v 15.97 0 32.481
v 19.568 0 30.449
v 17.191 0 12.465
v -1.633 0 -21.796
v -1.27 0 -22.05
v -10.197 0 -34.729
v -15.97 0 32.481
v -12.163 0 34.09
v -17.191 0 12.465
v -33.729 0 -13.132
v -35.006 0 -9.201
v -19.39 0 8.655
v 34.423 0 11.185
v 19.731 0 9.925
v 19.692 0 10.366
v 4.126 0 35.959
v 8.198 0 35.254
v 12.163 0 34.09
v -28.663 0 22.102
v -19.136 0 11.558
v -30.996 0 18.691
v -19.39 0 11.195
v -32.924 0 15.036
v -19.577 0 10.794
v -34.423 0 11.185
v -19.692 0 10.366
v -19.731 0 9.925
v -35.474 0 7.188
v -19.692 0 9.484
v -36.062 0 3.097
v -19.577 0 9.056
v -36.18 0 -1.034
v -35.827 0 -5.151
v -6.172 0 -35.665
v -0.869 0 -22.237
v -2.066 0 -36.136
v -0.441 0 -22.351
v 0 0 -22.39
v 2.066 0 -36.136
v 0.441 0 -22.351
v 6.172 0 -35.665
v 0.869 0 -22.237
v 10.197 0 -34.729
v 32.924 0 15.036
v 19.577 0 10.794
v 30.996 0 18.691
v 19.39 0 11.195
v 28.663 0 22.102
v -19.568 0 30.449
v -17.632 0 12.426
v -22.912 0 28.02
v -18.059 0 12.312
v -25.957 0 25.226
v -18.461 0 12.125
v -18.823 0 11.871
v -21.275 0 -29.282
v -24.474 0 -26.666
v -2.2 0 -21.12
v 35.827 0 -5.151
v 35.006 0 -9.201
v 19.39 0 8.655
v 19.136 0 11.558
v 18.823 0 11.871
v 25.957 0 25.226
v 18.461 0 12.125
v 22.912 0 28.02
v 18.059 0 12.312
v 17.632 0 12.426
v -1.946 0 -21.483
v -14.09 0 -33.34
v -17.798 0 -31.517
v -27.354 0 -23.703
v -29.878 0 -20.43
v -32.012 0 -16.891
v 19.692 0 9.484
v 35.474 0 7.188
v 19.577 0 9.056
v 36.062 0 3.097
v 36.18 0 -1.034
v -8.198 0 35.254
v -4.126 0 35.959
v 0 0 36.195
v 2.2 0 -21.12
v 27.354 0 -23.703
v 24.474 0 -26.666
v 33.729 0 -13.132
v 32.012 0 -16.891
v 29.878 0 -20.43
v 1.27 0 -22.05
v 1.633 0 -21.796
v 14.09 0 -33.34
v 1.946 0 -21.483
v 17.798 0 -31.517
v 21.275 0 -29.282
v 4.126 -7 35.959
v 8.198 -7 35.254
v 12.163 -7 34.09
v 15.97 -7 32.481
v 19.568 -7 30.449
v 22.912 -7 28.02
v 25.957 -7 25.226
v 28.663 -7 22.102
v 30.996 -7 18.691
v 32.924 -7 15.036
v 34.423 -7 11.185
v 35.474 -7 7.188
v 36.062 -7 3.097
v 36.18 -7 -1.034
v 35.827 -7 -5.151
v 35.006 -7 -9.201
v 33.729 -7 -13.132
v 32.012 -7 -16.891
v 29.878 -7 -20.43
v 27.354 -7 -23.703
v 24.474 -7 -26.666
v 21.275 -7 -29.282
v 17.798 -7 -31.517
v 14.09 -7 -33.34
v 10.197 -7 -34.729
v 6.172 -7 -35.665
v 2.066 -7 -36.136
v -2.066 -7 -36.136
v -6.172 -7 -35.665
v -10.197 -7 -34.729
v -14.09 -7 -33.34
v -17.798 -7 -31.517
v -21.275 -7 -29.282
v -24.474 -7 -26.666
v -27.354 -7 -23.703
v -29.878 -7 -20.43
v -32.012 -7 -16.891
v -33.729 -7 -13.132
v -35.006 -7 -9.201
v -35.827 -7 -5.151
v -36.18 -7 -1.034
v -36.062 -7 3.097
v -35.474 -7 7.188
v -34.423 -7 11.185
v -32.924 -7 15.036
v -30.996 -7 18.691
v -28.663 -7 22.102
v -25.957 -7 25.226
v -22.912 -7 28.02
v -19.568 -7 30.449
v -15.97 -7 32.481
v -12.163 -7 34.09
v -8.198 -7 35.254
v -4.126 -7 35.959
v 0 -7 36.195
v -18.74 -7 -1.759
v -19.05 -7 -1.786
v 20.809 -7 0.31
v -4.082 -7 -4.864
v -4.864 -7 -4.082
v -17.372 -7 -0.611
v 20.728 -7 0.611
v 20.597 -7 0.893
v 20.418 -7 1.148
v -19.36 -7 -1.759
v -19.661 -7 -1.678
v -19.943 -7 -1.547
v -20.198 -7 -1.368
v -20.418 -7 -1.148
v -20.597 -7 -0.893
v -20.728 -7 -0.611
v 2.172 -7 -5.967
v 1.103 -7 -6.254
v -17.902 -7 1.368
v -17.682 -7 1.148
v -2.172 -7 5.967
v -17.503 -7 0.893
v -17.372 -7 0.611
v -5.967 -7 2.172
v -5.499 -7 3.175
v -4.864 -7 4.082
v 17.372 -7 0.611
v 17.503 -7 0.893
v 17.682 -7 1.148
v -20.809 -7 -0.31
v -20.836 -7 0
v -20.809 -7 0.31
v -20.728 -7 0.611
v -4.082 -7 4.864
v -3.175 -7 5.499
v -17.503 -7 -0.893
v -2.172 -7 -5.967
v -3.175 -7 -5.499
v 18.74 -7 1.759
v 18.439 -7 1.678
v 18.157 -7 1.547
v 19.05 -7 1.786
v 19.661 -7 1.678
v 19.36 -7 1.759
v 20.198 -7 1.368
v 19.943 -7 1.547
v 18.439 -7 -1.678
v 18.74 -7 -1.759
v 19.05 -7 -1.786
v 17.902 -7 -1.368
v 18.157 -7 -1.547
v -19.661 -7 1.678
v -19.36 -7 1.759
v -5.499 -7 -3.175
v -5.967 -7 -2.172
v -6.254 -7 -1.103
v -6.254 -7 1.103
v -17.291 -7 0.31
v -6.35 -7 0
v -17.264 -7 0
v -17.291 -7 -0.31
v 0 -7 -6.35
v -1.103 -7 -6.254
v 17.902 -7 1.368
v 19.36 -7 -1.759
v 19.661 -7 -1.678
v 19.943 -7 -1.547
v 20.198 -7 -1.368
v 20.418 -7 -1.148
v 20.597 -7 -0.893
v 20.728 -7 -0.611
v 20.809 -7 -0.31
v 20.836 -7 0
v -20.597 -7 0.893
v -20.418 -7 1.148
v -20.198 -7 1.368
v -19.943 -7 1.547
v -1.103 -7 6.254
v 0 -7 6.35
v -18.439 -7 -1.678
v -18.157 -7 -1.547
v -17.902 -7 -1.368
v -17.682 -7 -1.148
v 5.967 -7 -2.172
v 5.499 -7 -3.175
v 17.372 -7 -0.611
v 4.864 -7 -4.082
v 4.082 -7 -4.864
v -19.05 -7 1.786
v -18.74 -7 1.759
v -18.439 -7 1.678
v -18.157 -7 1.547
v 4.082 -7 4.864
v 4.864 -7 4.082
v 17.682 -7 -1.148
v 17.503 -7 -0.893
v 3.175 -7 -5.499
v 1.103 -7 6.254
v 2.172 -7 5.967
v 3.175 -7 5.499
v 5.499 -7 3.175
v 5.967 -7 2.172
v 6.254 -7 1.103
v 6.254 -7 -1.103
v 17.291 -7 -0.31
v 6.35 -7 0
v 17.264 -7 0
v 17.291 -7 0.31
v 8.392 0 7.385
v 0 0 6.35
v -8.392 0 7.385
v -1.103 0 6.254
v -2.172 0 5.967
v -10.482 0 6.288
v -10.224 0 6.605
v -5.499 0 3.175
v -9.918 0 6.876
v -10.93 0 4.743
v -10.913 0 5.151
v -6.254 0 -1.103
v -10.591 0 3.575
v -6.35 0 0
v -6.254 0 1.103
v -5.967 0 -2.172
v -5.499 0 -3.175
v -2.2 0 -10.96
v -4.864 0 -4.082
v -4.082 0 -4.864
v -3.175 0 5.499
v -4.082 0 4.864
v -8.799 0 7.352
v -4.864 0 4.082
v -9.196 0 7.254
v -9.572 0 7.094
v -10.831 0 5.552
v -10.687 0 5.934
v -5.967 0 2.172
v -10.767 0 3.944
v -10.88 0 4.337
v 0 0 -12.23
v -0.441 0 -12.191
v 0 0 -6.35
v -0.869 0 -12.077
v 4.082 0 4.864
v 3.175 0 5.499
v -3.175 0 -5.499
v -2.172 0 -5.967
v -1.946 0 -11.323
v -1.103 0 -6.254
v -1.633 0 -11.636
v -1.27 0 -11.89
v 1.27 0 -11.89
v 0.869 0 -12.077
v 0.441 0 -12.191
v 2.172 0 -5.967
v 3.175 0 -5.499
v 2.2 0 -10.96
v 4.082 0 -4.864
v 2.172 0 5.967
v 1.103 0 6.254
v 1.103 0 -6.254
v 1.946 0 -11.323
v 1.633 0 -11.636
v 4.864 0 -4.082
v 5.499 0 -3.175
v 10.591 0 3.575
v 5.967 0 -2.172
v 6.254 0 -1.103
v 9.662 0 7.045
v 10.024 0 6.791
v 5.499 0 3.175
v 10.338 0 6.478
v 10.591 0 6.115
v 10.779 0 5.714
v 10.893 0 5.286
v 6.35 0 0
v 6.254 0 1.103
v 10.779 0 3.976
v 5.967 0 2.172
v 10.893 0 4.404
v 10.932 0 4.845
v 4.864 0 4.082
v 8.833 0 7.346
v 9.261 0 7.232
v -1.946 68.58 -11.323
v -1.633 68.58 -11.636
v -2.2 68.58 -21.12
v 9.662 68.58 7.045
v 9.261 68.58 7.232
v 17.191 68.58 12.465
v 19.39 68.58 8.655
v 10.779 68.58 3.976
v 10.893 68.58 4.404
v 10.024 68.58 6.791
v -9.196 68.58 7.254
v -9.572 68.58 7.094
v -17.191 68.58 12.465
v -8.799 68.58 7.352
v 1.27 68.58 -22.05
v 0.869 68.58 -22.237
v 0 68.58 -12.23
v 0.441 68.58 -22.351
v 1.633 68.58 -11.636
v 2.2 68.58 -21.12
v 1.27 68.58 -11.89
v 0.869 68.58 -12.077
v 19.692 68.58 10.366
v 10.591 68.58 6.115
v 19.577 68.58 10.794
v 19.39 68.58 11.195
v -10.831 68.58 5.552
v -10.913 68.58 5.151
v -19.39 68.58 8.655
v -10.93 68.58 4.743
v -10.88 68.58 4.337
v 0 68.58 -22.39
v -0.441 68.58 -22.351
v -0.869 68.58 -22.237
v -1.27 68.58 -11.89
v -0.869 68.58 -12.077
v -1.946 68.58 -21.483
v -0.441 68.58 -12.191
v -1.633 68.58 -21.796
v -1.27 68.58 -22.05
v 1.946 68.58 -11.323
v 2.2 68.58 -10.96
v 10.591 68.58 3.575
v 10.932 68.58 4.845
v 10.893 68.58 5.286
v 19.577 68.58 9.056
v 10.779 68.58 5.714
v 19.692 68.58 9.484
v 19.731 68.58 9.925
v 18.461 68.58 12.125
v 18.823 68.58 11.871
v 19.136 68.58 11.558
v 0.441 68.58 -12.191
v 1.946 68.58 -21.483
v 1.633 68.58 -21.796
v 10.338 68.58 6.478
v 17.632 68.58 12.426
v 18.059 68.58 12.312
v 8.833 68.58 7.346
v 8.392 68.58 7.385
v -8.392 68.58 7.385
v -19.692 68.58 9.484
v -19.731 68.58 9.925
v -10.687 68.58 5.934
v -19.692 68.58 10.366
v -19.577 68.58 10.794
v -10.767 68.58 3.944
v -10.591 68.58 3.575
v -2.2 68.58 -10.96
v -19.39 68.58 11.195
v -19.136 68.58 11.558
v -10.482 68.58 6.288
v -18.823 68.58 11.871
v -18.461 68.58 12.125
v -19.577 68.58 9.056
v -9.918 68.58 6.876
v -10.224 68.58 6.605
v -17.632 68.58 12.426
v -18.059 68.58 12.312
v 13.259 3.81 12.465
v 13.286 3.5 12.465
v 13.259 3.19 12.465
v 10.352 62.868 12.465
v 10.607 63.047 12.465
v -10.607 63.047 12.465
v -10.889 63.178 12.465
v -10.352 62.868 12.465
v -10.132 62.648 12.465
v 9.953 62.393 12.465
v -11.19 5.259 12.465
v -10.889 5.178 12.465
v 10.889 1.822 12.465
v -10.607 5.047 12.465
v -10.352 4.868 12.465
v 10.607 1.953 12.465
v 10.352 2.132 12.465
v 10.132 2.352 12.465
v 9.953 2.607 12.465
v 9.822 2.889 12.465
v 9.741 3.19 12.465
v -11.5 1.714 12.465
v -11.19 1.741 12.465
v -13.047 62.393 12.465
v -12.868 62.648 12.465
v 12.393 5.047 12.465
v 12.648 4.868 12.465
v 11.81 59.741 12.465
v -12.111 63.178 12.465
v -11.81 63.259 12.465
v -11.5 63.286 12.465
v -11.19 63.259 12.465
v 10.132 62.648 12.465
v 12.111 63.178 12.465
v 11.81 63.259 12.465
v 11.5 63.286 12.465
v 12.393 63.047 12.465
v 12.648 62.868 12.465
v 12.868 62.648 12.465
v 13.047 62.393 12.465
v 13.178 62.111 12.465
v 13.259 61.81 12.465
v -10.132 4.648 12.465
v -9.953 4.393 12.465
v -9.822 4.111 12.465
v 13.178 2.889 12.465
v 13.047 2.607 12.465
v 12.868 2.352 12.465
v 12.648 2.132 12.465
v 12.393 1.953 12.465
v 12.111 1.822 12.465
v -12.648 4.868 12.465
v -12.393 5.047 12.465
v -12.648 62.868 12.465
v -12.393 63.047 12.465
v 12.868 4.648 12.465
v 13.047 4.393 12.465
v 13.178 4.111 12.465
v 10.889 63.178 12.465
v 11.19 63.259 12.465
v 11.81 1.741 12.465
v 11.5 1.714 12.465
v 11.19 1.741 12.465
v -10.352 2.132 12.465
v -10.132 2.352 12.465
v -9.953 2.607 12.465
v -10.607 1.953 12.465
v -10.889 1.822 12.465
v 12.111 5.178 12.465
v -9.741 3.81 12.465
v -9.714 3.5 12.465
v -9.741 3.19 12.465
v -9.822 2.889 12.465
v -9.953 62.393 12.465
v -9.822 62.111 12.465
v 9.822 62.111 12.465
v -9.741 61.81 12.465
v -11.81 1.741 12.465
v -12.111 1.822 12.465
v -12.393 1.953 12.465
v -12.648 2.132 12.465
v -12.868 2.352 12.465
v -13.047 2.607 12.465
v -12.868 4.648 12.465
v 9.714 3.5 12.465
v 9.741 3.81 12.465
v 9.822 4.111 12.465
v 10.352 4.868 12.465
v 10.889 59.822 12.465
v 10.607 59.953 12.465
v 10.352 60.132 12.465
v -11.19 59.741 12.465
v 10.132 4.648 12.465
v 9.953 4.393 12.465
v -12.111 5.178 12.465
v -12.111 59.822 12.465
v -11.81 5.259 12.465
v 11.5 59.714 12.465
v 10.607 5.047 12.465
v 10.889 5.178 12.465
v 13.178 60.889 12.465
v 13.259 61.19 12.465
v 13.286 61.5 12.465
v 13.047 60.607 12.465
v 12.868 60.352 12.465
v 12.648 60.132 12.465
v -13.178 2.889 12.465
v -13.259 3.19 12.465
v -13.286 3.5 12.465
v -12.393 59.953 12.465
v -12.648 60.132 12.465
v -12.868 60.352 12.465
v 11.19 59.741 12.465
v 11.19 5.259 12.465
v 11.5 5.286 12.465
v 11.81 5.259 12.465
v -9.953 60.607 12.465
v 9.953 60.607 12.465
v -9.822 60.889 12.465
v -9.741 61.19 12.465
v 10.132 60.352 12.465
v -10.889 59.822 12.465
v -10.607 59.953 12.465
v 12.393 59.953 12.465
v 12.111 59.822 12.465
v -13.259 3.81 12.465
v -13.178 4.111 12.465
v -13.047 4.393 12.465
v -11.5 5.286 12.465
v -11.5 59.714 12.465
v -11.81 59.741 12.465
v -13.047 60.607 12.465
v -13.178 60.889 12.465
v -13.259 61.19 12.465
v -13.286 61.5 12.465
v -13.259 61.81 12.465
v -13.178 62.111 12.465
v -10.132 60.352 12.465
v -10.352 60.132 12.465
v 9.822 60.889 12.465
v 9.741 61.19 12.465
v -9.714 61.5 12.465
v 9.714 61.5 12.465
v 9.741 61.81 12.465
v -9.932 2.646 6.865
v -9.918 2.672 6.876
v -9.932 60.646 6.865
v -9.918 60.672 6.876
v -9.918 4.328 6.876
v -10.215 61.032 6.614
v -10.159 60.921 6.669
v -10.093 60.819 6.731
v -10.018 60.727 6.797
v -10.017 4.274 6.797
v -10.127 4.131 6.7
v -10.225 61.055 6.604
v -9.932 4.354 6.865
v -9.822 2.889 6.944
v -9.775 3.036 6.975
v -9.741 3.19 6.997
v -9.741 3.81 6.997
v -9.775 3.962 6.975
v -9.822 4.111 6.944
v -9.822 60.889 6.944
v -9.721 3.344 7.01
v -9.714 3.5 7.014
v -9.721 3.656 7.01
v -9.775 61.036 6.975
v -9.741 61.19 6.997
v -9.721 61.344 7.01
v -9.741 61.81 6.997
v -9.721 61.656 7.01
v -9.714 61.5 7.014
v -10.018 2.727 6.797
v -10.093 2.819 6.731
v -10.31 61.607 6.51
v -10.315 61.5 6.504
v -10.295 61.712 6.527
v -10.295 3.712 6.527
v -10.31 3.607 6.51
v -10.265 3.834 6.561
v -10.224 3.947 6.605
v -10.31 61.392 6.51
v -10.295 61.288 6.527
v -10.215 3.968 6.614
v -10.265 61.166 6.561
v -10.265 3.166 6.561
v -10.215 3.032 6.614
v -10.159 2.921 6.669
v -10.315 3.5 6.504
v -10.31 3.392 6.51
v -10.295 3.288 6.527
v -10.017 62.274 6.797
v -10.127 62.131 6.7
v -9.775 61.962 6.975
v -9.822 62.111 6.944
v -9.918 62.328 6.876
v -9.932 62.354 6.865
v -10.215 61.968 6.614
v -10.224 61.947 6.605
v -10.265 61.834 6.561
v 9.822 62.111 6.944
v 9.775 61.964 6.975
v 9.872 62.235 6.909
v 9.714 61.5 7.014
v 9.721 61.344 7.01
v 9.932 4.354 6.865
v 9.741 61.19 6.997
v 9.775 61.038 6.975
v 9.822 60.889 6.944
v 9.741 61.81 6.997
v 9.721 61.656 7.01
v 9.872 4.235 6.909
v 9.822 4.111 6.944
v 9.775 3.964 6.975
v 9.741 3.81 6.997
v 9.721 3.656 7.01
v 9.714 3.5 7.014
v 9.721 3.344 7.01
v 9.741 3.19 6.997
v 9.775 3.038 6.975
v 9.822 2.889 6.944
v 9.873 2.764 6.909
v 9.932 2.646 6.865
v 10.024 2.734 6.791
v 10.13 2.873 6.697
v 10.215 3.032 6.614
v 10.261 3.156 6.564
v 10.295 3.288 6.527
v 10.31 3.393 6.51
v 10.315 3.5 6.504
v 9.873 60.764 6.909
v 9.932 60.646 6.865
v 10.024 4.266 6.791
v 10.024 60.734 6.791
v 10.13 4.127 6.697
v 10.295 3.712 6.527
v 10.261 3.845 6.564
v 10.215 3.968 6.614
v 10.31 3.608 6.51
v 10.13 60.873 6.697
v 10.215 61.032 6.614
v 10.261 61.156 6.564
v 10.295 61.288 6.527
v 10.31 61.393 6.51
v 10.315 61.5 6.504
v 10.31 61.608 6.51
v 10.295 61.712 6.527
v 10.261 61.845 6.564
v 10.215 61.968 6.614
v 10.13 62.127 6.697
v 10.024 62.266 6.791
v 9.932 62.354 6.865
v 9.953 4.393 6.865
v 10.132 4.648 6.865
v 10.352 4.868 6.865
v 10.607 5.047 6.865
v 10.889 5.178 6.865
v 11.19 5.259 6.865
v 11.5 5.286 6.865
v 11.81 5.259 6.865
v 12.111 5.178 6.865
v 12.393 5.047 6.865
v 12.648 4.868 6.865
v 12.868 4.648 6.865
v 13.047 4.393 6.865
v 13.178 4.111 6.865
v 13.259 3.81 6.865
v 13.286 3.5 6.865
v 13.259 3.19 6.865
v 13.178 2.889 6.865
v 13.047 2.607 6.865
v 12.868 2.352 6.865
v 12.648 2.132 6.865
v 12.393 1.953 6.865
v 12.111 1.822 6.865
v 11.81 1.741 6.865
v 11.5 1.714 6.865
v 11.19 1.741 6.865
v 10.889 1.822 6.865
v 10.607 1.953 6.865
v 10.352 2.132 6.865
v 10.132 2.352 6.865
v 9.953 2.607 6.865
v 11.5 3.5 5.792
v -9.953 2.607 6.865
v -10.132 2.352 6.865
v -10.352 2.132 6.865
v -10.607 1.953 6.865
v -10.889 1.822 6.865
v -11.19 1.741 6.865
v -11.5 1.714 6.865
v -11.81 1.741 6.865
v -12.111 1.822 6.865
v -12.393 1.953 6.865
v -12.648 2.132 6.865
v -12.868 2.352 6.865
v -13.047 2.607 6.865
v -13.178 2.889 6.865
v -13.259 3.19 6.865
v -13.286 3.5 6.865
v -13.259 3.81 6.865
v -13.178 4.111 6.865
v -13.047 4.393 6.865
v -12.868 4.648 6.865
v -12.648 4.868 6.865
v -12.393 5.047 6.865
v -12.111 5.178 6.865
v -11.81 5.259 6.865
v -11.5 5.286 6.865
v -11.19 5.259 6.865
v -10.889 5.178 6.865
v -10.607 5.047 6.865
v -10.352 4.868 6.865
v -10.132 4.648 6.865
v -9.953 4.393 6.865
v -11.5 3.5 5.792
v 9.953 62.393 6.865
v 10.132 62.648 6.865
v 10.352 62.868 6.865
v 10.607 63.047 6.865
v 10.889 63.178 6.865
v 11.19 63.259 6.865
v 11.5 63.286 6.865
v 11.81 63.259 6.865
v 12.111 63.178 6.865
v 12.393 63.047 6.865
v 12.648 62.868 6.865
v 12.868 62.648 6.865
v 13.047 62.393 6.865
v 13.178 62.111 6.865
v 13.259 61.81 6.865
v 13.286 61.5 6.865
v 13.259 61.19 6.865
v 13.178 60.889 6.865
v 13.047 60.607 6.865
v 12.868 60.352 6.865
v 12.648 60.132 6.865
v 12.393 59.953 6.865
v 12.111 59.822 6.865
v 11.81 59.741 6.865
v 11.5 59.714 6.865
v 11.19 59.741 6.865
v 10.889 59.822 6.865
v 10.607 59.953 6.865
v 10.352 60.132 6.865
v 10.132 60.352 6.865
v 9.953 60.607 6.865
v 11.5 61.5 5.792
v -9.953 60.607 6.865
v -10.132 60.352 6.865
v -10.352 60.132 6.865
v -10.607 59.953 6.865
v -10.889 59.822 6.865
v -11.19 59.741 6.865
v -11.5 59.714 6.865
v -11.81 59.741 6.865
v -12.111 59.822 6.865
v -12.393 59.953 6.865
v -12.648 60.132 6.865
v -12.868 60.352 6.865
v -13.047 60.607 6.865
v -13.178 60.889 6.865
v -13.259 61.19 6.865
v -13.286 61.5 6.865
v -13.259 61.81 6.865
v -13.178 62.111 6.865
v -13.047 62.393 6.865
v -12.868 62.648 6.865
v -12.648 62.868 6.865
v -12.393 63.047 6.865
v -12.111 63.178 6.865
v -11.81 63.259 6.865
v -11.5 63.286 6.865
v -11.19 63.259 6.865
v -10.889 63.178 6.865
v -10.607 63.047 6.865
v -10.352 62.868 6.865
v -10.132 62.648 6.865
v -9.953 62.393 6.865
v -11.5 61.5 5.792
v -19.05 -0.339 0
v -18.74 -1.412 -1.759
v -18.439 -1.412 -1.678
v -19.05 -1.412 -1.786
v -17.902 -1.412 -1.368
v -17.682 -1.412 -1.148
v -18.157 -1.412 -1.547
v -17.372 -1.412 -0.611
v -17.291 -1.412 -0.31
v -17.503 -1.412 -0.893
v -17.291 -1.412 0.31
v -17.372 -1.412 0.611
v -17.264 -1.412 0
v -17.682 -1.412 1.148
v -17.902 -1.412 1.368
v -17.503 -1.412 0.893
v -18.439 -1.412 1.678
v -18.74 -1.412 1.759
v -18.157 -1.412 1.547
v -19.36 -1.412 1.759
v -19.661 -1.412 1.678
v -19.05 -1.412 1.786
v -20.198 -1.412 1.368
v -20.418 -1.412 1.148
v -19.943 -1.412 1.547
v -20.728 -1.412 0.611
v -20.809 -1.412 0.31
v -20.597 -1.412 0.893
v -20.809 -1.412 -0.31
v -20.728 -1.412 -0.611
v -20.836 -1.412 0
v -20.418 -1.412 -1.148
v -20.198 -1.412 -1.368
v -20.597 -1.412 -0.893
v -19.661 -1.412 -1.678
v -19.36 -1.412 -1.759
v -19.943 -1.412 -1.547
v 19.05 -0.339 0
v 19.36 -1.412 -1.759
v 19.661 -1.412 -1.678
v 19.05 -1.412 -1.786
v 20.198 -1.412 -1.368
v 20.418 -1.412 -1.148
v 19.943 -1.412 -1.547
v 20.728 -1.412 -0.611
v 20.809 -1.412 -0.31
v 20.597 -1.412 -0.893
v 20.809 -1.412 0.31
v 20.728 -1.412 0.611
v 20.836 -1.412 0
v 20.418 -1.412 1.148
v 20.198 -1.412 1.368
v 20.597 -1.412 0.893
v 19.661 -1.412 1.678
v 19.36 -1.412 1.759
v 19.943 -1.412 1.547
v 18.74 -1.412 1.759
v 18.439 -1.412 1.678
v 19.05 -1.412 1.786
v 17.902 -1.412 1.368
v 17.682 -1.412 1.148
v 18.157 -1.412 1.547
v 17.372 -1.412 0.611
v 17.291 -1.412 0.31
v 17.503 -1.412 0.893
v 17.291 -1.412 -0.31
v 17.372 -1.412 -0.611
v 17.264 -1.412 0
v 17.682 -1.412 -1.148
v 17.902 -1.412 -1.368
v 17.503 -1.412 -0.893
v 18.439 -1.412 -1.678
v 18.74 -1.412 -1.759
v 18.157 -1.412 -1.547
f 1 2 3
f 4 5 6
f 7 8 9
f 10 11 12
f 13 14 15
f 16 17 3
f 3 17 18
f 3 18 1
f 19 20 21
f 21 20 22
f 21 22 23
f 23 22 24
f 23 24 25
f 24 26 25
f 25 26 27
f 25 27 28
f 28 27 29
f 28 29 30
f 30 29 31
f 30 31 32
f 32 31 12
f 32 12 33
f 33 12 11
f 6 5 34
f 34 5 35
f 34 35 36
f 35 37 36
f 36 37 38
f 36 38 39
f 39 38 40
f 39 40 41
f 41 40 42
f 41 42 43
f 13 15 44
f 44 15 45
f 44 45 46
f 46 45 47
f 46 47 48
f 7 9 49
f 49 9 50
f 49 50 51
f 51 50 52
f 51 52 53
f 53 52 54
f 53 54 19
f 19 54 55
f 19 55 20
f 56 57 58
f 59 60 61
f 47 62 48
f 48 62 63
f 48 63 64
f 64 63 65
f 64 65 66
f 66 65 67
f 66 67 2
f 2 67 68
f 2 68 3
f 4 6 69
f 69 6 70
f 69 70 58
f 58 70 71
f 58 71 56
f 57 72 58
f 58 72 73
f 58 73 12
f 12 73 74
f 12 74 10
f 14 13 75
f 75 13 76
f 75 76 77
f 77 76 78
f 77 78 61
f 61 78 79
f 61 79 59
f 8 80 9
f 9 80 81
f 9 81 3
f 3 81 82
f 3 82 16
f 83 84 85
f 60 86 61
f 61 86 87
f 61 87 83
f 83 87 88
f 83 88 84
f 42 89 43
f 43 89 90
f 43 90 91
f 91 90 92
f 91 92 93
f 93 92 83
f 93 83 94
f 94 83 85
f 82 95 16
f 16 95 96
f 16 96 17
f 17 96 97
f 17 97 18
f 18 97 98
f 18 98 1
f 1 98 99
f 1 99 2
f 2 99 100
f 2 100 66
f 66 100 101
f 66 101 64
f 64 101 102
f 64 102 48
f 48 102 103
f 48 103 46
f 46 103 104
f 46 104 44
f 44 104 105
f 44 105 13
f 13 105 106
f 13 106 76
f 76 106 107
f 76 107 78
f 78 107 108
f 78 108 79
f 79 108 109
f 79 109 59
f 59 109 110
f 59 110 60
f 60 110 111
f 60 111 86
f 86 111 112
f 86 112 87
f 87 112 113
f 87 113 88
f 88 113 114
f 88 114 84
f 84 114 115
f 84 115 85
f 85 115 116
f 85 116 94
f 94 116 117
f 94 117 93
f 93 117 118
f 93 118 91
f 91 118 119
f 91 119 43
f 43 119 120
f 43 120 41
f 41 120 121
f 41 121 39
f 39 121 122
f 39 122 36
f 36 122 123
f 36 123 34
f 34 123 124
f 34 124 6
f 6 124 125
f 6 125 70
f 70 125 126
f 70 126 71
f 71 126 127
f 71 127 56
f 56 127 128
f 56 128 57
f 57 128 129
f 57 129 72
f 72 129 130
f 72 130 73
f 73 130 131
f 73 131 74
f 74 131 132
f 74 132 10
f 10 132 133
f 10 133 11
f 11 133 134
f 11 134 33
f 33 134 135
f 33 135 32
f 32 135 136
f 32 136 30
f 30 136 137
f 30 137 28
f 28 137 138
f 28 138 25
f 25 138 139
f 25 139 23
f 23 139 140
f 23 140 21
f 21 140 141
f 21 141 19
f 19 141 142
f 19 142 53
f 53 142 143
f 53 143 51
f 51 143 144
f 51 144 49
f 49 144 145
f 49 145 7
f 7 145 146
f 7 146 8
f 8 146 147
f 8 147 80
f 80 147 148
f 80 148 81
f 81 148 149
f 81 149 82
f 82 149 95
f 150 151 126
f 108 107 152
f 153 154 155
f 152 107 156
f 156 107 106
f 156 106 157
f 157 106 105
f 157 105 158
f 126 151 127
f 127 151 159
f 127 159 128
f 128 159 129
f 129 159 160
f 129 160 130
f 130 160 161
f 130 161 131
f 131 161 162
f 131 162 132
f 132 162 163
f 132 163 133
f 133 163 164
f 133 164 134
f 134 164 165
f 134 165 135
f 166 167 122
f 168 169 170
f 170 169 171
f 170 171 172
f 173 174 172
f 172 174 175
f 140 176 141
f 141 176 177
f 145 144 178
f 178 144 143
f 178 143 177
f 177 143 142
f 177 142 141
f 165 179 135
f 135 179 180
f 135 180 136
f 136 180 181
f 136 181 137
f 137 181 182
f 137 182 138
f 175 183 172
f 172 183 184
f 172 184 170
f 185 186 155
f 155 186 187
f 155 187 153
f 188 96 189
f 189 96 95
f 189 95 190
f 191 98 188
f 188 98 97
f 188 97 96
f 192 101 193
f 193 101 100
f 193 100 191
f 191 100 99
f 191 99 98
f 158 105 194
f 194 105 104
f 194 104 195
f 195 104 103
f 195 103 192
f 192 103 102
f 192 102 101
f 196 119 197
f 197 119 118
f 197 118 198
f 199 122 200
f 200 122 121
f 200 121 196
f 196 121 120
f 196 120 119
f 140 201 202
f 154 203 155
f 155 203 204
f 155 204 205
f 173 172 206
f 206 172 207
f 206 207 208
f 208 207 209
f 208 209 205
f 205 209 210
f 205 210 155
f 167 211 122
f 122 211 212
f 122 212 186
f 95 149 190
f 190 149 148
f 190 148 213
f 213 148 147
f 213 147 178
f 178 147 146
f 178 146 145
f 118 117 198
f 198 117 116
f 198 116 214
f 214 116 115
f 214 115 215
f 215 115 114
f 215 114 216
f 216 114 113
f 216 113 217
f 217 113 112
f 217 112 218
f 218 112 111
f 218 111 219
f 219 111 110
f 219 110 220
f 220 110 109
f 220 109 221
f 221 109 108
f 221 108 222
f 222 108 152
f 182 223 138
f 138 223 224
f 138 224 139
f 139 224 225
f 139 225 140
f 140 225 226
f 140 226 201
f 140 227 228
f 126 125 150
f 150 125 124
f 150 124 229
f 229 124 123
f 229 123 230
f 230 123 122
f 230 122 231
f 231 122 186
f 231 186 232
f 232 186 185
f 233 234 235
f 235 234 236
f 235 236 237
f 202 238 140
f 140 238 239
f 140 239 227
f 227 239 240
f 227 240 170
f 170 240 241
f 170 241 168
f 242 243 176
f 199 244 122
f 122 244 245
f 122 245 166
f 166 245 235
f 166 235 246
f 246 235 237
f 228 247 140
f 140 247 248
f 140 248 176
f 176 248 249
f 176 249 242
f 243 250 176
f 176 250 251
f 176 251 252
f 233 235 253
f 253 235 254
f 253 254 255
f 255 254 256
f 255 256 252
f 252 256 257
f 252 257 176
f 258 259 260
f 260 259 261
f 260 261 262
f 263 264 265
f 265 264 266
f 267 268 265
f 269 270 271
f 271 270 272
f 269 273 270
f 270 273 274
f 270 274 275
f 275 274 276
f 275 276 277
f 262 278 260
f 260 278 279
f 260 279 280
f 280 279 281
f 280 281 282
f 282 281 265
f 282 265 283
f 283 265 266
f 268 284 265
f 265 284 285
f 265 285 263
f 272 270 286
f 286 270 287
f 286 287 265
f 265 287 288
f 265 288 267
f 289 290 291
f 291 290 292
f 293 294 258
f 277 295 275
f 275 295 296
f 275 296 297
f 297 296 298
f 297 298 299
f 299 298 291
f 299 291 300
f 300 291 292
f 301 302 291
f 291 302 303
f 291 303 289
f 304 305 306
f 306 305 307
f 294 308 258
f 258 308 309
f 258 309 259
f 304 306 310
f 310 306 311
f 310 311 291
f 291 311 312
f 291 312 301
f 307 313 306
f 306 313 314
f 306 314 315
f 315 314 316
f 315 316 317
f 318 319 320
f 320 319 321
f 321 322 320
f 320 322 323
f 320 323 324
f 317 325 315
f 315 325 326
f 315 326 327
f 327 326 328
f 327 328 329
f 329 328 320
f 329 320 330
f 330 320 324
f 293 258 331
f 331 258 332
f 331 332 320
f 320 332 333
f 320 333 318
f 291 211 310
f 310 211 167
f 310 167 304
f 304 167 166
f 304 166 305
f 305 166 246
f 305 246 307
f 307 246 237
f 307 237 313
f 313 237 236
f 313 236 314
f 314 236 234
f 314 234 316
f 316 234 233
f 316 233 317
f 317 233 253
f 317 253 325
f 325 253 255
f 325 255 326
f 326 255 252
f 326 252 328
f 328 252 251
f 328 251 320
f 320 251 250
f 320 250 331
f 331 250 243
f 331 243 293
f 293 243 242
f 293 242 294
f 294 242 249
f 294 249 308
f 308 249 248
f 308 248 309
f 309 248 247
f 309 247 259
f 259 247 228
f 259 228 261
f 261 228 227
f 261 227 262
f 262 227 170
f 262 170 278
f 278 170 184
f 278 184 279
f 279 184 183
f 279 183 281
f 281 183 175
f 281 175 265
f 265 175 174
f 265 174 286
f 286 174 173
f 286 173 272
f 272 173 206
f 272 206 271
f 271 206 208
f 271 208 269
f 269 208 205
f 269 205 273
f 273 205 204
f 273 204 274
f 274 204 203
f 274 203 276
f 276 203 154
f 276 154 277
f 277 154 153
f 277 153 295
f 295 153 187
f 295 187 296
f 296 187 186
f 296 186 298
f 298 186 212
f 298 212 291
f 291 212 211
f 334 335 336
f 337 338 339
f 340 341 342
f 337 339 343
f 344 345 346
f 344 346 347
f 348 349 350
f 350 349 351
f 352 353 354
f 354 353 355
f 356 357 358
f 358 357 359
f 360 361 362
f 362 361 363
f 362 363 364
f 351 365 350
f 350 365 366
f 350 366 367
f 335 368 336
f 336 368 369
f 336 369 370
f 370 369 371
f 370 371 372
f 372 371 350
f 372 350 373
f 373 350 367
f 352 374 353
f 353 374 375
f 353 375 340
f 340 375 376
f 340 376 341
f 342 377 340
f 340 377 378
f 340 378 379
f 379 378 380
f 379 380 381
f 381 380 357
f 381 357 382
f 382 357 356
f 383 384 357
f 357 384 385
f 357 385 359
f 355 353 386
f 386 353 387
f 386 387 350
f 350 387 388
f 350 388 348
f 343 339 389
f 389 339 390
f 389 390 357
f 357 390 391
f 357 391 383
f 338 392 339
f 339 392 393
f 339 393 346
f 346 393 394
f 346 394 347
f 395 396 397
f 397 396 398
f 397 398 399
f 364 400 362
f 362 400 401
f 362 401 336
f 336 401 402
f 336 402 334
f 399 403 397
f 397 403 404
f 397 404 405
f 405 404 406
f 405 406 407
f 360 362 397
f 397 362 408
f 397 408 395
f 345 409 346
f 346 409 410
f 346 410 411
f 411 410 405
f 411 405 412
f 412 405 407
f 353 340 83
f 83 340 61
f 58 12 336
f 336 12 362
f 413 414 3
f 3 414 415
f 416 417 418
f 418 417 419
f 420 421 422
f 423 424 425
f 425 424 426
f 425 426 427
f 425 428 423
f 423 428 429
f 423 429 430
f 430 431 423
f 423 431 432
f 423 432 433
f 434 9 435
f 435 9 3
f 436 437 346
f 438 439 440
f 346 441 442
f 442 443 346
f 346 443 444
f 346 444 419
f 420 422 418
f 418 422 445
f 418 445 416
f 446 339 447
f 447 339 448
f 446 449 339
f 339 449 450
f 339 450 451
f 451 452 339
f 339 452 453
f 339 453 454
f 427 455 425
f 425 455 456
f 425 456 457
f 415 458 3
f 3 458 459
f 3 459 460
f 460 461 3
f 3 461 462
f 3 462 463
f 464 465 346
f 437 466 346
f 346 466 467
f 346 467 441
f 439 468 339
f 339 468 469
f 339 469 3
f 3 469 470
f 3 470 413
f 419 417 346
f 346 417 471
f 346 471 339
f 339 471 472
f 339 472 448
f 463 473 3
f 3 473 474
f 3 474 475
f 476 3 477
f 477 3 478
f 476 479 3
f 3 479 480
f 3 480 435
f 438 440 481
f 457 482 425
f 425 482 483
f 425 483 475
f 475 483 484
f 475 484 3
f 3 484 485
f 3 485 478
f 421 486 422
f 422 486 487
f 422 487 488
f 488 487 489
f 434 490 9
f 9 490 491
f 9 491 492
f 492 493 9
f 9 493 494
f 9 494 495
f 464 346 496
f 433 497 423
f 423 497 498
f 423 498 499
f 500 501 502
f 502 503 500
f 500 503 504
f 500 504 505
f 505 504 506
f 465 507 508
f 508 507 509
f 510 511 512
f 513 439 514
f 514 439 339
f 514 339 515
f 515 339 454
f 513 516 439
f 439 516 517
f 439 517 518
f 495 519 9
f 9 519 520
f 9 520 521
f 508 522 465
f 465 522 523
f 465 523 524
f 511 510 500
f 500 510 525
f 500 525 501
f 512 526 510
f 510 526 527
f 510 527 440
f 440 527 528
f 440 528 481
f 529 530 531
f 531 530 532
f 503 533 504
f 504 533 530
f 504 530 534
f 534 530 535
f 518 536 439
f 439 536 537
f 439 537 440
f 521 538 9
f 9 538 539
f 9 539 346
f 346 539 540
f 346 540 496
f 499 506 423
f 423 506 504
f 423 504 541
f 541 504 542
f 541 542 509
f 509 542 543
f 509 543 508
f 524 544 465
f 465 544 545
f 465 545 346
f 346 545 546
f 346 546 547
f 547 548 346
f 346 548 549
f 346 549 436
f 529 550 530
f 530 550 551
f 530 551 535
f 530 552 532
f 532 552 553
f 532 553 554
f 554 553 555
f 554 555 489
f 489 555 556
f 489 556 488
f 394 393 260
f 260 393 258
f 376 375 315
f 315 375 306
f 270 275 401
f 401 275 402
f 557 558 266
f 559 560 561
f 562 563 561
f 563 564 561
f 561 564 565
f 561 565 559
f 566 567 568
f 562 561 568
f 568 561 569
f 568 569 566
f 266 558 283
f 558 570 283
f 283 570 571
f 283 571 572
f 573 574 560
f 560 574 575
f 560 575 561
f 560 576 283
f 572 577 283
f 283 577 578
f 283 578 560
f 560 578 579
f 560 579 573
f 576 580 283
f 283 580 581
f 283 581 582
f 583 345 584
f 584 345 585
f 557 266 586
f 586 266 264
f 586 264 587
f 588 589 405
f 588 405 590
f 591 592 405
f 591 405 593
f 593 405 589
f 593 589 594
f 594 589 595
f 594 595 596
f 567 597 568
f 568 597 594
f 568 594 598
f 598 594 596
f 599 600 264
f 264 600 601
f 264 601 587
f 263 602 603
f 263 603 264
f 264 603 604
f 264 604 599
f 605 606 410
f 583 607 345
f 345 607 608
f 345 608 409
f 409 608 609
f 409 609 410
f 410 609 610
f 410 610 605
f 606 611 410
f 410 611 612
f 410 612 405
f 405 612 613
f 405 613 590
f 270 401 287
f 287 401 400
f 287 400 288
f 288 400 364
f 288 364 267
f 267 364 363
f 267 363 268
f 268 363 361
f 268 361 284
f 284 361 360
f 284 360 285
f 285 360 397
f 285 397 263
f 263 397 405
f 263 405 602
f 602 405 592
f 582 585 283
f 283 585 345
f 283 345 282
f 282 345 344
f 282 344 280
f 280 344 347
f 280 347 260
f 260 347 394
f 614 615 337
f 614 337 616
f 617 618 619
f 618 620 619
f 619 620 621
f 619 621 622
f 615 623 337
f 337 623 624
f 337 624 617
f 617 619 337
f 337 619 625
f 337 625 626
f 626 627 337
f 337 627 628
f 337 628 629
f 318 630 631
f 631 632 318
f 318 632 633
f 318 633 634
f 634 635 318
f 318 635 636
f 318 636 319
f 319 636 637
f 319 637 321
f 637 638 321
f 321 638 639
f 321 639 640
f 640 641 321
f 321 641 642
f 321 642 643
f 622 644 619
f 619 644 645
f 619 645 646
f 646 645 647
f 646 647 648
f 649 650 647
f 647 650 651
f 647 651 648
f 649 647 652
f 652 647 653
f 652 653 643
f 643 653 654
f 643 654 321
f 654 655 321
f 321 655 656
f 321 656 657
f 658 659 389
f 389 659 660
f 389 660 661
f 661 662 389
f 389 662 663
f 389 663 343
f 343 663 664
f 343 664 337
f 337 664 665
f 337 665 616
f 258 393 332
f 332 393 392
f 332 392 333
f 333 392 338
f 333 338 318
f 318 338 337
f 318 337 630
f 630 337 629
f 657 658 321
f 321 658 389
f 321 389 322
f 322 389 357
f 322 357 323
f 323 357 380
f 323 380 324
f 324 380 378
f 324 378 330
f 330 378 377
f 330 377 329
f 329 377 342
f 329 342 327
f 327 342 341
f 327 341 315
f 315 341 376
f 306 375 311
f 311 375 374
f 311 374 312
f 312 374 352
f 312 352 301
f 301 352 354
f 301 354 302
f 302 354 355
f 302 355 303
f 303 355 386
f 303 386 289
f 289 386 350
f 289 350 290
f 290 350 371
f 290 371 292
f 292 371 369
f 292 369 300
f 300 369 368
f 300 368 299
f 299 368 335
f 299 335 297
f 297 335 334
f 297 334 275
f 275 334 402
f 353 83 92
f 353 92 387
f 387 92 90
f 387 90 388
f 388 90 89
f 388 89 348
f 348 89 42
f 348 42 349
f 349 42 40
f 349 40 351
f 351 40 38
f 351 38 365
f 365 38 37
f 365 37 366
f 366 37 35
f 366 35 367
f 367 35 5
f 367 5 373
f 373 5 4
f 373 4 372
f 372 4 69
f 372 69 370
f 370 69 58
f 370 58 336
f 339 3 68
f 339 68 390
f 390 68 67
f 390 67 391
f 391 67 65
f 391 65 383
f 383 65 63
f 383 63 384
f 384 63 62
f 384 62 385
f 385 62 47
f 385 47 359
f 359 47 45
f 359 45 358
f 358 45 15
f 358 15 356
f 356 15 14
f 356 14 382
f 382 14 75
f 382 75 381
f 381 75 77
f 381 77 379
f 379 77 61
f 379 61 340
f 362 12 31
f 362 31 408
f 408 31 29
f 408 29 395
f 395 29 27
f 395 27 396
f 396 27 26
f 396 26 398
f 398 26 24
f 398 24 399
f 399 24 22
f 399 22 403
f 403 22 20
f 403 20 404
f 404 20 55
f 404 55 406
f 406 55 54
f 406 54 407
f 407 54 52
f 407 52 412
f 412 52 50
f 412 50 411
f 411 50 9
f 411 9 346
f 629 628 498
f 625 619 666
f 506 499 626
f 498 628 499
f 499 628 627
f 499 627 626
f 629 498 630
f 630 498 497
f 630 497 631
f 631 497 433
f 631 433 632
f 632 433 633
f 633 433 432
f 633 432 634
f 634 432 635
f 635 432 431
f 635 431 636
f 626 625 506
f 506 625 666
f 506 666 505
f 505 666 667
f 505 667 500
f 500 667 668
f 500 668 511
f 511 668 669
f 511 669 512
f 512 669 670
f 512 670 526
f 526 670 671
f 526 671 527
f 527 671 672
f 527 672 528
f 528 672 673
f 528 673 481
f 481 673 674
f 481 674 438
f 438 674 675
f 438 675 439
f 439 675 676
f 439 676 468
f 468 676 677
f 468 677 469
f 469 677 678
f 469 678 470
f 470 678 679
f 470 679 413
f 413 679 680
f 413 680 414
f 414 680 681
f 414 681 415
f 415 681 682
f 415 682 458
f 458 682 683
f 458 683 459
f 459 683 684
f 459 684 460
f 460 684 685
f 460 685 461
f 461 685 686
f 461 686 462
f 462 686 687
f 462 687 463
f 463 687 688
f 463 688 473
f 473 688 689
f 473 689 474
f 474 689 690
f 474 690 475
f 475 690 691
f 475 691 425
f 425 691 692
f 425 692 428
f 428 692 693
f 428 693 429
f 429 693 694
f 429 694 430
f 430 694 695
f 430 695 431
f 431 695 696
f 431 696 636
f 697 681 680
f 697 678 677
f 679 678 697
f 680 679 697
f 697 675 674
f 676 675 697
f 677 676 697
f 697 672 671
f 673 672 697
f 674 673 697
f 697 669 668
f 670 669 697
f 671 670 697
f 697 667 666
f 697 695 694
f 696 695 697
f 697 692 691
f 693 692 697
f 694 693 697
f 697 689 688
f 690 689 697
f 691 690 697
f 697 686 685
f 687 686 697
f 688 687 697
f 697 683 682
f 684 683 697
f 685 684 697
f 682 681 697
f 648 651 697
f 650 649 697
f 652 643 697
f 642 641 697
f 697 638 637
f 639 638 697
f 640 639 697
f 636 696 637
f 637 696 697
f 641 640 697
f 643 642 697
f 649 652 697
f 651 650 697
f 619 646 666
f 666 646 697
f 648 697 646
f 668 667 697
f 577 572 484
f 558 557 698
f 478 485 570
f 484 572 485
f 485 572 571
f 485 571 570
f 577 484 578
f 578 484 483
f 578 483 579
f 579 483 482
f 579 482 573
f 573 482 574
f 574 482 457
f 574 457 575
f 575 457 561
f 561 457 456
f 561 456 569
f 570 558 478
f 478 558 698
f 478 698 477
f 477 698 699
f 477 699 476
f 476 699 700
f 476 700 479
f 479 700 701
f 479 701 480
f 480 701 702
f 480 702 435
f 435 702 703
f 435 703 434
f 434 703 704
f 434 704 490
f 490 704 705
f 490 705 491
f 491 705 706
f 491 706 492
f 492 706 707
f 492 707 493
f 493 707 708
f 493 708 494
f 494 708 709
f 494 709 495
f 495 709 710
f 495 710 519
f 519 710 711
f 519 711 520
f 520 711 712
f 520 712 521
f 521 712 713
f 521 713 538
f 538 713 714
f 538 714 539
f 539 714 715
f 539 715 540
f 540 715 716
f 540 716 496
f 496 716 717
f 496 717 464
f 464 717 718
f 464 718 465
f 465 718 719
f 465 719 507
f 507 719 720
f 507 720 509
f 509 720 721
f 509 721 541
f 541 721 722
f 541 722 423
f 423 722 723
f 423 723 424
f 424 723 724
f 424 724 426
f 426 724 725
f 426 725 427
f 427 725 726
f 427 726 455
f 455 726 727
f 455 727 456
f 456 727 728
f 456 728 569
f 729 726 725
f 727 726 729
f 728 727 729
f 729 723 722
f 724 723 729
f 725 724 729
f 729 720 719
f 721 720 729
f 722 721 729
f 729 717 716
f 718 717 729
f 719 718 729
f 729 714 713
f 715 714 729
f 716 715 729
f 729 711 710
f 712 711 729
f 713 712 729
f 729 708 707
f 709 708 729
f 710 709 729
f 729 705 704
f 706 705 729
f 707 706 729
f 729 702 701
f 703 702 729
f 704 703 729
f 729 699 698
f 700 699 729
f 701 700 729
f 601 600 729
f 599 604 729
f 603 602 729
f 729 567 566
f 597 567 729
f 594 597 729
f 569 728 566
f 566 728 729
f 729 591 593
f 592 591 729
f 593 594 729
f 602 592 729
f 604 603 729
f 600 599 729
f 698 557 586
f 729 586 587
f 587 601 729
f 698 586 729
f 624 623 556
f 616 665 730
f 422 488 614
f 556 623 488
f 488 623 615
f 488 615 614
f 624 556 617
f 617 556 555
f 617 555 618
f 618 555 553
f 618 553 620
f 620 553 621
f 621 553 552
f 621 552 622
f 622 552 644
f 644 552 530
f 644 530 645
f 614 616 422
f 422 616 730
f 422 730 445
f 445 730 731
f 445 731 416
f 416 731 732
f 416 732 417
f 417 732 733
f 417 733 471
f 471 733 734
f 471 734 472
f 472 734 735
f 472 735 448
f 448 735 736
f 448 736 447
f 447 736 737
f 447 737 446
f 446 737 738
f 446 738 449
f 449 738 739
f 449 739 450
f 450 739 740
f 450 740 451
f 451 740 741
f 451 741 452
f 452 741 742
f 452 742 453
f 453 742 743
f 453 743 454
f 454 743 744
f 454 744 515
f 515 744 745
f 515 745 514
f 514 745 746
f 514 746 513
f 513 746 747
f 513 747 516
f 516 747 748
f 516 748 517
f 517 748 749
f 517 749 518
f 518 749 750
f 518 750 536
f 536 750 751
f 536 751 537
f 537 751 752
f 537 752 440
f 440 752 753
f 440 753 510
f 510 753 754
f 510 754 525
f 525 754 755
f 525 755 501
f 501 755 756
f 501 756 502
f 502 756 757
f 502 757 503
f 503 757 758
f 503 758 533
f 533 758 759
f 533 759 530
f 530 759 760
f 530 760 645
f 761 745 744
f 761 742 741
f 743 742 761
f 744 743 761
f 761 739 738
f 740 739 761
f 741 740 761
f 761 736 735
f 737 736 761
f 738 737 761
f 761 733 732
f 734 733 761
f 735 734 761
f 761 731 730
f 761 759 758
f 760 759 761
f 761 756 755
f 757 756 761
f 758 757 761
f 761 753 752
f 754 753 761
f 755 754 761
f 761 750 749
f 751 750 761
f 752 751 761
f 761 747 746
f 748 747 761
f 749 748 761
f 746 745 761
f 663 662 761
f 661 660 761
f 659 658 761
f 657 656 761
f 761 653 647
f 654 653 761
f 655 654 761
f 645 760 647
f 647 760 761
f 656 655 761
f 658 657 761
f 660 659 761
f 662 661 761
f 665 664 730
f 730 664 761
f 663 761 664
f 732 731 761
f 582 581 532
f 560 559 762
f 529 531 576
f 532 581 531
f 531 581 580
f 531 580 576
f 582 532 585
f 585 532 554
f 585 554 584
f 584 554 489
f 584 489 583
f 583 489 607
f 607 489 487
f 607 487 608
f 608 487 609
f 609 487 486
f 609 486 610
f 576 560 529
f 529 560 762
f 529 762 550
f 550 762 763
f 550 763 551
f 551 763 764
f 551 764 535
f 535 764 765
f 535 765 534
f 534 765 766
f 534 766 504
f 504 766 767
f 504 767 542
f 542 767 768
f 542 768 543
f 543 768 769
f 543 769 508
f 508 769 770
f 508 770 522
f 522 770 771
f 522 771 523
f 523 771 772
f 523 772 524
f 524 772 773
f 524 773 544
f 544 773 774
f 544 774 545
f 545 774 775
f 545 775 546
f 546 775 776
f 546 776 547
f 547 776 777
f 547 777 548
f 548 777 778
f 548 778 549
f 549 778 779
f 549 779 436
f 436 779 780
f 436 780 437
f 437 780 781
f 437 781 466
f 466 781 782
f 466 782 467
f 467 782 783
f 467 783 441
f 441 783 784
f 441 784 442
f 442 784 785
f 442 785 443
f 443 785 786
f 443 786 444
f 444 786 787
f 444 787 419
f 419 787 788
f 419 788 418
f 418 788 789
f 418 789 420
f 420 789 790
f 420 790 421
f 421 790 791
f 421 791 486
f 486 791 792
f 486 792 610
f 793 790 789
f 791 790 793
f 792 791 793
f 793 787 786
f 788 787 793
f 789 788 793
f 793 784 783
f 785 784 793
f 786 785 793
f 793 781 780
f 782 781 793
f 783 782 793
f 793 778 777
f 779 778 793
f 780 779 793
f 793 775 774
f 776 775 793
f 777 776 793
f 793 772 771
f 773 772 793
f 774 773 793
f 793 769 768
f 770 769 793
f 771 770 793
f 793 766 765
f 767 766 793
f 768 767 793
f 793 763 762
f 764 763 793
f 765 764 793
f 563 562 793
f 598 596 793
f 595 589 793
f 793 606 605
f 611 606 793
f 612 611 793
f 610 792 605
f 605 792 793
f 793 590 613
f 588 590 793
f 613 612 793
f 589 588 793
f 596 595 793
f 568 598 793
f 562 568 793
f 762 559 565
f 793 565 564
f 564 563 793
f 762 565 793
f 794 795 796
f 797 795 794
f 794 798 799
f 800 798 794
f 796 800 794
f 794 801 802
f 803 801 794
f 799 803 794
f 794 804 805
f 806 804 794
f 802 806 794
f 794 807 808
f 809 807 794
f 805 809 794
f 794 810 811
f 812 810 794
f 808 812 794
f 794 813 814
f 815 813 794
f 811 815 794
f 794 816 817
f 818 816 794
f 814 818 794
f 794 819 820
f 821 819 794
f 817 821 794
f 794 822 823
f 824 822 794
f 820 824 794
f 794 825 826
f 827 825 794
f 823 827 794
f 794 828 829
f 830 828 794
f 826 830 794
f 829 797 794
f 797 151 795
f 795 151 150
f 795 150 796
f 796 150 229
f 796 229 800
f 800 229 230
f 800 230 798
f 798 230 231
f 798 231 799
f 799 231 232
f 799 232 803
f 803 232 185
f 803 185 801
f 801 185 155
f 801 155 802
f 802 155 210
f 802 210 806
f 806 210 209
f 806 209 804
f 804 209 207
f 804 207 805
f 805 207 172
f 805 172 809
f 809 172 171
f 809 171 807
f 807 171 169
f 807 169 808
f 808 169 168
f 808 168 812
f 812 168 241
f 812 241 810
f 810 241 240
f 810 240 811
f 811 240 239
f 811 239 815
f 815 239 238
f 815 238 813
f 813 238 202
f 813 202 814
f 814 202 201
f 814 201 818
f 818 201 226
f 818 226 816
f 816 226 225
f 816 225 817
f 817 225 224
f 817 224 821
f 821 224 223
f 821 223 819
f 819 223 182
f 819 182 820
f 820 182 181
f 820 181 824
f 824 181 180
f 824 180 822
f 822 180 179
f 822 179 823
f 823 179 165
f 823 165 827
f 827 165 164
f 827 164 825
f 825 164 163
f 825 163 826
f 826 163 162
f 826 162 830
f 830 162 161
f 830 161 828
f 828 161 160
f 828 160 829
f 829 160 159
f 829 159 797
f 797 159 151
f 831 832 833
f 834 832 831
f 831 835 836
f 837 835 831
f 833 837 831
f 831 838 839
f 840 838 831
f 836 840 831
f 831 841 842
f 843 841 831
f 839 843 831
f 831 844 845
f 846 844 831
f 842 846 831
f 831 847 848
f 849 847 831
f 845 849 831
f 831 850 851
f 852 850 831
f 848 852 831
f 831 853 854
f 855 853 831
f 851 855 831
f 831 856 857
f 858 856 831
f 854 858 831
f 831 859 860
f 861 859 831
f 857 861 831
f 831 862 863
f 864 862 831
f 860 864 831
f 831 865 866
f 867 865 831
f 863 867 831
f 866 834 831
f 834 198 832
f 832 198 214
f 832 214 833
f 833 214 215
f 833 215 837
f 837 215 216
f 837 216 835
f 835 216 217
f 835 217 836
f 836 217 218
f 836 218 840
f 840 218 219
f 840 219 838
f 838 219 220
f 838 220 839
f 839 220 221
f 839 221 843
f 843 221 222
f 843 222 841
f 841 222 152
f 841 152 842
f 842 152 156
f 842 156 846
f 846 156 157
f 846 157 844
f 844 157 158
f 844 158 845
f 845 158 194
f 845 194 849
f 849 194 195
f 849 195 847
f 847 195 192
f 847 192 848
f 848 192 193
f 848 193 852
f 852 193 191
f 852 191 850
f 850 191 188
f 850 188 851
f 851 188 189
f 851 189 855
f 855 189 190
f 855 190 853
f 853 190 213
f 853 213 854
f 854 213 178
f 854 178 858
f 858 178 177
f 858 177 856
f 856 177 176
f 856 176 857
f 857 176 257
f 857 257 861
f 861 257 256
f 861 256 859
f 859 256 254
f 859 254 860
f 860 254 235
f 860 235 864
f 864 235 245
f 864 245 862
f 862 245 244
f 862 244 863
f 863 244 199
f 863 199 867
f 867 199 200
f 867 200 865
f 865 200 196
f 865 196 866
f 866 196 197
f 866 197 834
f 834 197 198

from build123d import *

# Parameters (mm, degrees)
SKETCH1_R                           = 36.195
BOSS_EXTRUDE1_DEPTH                 = 7
CUT_EXTRUDE1_REACH                  = 53.664
SKETCH2_R                           = 6.35
BOSS_EXTRUDE2_DEPTH                 = 68.58
FILLET1_R                           = 2.54
F_9_64_0_14063_DIAMETER_HOLE1_D     = 3.572002
F_9_64_0_14063_DIAMETER_HOLE1_DEPTH = 5.5999888
F_9_64_0_14063_DIAMETER_HOLE1_TIP   = 1.073137666
F_9_64_0_14063_DIAMETER_HOLE2_D     = 3.572002
F_9_64_0_14063_DIAMETER_HOLE2_DEPTH = 5.588
F_9_64_0_14063_DIAMETER_HOLE2_TIP   = 1.073137666


with BuildPart() as part:
    # Sketch1 → Boss-Extrude1 (new body)
    with BuildSketch(Plane(origin=(0, 0, 0), x_dir=(1, 0, 0), z_dir=(0, 1, 0))):
        Circle(SKETCH1_R)
    extrude(amount=-BOSS_EXTRUDE1_DEPTH)

    # Sketch2 → Cut-Extrude1 (cut, up to next)
    with BuildSketch(Plane.XZ.offset(7), mode=Mode.PRIVATE) as cut_extrude1_sk1:
        Circle(SKETCH2_R)
    cut_extrude1_tool1 = extrude(cut_extrude1_sk1.sketch, amount=-CUT_EXTRUDE1_REACH, mode=Mode.PRIVATE) & part.part
    add(cut_extrude1_tool1.solids().sort_by_distance((0, -7, 0))[0], mode=Mode.SUBTRACT)

    # Sketch3 → Boss-Extrude2 (add)
    with BuildSketch(Plane(origin=(0, 0, 0), x_dir=(1, 0, 0), z_dir=(0, 1, 0))):
        Polygon((0, 24.929984624), (-21.59, -12.464992312), (21.59, -12.464992312), align=None)
        Polygon((12.791181898, -7.384992312), (0, 14.769984624), (-12.791181898, -7.384992312), align=None, mode=Mode.SUBTRACT)
    extrude(amount=BOSS_EXTRUDE2_DEPTH)

    # Fillet1
    fillet1_edges = [part.edges().sort_by_distance(p)[0] for p in [
        (-12.791181898, 34.29, 7.384992312),
        (12.791181898, 34.29, 7.384992312),
        (0, 34.29, -14.769984624),
        (0, 34.29, -24.929984624),
        (21.59, 34.29, 12.464992312),
        (-21.59, 34.29, 12.464992312),
    ]]
    fillet(fillet1_edges, radius=FILLET1_R)

    # 9/64 (0.14063) Diameter Hole1
    with Locations(Plane.XY.offset(12.464992312)):
        with Locations((-11.5, 61.5), (11.5, 61.5), (-11.5, 3.5), (11.5, 3.5)):
            Hole(F_9_64_0_14063_DIAMETER_HOLE1_D / 2, depth=F_9_64_0_14063_DIAMETER_HOLE1_DEPTH)
            with Locations((0, 0, -(F_9_64_0_14063_DIAMETER_HOLE1_DEPTH + F_9_64_0_14063_DIAMETER_HOLE1_TIP / 2))):  # 118° drill point
                Cone(0, F_9_64_0_14063_DIAMETER_HOLE1_D / 2, F_9_64_0_14063_DIAMETER_HOLE1_TIP, mode=Mode.SUBTRACT)

    # 9/64 (0.14063) Diameter Hole2
    with Locations(Plane(origin=(0, -7, 0), x_dir=(-1, 0, 0), z_dir=(0, -1, 0))):
        with Locations((-19.05, 0), (19.05, 0)):
            Hole(F_9_64_0_14063_DIAMETER_HOLE2_D / 2, depth=F_9_64_0_14063_DIAMETER_HOLE2_DEPTH)
            with Locations((0, 0, -(F_9_64_0_14063_DIAMETER_HOLE2_DEPTH + F_9_64_0_14063_DIAMETER_HOLE2_TIP / 2))):  # 118° drill point
                Cone(0, F_9_64_0_14063_DIAMETER_HOLE2_D / 2, F_9_64_0_14063_DIAMETER_HOLE2_TIP, mode=Mode.SUBTRACT)


solid = part.part
